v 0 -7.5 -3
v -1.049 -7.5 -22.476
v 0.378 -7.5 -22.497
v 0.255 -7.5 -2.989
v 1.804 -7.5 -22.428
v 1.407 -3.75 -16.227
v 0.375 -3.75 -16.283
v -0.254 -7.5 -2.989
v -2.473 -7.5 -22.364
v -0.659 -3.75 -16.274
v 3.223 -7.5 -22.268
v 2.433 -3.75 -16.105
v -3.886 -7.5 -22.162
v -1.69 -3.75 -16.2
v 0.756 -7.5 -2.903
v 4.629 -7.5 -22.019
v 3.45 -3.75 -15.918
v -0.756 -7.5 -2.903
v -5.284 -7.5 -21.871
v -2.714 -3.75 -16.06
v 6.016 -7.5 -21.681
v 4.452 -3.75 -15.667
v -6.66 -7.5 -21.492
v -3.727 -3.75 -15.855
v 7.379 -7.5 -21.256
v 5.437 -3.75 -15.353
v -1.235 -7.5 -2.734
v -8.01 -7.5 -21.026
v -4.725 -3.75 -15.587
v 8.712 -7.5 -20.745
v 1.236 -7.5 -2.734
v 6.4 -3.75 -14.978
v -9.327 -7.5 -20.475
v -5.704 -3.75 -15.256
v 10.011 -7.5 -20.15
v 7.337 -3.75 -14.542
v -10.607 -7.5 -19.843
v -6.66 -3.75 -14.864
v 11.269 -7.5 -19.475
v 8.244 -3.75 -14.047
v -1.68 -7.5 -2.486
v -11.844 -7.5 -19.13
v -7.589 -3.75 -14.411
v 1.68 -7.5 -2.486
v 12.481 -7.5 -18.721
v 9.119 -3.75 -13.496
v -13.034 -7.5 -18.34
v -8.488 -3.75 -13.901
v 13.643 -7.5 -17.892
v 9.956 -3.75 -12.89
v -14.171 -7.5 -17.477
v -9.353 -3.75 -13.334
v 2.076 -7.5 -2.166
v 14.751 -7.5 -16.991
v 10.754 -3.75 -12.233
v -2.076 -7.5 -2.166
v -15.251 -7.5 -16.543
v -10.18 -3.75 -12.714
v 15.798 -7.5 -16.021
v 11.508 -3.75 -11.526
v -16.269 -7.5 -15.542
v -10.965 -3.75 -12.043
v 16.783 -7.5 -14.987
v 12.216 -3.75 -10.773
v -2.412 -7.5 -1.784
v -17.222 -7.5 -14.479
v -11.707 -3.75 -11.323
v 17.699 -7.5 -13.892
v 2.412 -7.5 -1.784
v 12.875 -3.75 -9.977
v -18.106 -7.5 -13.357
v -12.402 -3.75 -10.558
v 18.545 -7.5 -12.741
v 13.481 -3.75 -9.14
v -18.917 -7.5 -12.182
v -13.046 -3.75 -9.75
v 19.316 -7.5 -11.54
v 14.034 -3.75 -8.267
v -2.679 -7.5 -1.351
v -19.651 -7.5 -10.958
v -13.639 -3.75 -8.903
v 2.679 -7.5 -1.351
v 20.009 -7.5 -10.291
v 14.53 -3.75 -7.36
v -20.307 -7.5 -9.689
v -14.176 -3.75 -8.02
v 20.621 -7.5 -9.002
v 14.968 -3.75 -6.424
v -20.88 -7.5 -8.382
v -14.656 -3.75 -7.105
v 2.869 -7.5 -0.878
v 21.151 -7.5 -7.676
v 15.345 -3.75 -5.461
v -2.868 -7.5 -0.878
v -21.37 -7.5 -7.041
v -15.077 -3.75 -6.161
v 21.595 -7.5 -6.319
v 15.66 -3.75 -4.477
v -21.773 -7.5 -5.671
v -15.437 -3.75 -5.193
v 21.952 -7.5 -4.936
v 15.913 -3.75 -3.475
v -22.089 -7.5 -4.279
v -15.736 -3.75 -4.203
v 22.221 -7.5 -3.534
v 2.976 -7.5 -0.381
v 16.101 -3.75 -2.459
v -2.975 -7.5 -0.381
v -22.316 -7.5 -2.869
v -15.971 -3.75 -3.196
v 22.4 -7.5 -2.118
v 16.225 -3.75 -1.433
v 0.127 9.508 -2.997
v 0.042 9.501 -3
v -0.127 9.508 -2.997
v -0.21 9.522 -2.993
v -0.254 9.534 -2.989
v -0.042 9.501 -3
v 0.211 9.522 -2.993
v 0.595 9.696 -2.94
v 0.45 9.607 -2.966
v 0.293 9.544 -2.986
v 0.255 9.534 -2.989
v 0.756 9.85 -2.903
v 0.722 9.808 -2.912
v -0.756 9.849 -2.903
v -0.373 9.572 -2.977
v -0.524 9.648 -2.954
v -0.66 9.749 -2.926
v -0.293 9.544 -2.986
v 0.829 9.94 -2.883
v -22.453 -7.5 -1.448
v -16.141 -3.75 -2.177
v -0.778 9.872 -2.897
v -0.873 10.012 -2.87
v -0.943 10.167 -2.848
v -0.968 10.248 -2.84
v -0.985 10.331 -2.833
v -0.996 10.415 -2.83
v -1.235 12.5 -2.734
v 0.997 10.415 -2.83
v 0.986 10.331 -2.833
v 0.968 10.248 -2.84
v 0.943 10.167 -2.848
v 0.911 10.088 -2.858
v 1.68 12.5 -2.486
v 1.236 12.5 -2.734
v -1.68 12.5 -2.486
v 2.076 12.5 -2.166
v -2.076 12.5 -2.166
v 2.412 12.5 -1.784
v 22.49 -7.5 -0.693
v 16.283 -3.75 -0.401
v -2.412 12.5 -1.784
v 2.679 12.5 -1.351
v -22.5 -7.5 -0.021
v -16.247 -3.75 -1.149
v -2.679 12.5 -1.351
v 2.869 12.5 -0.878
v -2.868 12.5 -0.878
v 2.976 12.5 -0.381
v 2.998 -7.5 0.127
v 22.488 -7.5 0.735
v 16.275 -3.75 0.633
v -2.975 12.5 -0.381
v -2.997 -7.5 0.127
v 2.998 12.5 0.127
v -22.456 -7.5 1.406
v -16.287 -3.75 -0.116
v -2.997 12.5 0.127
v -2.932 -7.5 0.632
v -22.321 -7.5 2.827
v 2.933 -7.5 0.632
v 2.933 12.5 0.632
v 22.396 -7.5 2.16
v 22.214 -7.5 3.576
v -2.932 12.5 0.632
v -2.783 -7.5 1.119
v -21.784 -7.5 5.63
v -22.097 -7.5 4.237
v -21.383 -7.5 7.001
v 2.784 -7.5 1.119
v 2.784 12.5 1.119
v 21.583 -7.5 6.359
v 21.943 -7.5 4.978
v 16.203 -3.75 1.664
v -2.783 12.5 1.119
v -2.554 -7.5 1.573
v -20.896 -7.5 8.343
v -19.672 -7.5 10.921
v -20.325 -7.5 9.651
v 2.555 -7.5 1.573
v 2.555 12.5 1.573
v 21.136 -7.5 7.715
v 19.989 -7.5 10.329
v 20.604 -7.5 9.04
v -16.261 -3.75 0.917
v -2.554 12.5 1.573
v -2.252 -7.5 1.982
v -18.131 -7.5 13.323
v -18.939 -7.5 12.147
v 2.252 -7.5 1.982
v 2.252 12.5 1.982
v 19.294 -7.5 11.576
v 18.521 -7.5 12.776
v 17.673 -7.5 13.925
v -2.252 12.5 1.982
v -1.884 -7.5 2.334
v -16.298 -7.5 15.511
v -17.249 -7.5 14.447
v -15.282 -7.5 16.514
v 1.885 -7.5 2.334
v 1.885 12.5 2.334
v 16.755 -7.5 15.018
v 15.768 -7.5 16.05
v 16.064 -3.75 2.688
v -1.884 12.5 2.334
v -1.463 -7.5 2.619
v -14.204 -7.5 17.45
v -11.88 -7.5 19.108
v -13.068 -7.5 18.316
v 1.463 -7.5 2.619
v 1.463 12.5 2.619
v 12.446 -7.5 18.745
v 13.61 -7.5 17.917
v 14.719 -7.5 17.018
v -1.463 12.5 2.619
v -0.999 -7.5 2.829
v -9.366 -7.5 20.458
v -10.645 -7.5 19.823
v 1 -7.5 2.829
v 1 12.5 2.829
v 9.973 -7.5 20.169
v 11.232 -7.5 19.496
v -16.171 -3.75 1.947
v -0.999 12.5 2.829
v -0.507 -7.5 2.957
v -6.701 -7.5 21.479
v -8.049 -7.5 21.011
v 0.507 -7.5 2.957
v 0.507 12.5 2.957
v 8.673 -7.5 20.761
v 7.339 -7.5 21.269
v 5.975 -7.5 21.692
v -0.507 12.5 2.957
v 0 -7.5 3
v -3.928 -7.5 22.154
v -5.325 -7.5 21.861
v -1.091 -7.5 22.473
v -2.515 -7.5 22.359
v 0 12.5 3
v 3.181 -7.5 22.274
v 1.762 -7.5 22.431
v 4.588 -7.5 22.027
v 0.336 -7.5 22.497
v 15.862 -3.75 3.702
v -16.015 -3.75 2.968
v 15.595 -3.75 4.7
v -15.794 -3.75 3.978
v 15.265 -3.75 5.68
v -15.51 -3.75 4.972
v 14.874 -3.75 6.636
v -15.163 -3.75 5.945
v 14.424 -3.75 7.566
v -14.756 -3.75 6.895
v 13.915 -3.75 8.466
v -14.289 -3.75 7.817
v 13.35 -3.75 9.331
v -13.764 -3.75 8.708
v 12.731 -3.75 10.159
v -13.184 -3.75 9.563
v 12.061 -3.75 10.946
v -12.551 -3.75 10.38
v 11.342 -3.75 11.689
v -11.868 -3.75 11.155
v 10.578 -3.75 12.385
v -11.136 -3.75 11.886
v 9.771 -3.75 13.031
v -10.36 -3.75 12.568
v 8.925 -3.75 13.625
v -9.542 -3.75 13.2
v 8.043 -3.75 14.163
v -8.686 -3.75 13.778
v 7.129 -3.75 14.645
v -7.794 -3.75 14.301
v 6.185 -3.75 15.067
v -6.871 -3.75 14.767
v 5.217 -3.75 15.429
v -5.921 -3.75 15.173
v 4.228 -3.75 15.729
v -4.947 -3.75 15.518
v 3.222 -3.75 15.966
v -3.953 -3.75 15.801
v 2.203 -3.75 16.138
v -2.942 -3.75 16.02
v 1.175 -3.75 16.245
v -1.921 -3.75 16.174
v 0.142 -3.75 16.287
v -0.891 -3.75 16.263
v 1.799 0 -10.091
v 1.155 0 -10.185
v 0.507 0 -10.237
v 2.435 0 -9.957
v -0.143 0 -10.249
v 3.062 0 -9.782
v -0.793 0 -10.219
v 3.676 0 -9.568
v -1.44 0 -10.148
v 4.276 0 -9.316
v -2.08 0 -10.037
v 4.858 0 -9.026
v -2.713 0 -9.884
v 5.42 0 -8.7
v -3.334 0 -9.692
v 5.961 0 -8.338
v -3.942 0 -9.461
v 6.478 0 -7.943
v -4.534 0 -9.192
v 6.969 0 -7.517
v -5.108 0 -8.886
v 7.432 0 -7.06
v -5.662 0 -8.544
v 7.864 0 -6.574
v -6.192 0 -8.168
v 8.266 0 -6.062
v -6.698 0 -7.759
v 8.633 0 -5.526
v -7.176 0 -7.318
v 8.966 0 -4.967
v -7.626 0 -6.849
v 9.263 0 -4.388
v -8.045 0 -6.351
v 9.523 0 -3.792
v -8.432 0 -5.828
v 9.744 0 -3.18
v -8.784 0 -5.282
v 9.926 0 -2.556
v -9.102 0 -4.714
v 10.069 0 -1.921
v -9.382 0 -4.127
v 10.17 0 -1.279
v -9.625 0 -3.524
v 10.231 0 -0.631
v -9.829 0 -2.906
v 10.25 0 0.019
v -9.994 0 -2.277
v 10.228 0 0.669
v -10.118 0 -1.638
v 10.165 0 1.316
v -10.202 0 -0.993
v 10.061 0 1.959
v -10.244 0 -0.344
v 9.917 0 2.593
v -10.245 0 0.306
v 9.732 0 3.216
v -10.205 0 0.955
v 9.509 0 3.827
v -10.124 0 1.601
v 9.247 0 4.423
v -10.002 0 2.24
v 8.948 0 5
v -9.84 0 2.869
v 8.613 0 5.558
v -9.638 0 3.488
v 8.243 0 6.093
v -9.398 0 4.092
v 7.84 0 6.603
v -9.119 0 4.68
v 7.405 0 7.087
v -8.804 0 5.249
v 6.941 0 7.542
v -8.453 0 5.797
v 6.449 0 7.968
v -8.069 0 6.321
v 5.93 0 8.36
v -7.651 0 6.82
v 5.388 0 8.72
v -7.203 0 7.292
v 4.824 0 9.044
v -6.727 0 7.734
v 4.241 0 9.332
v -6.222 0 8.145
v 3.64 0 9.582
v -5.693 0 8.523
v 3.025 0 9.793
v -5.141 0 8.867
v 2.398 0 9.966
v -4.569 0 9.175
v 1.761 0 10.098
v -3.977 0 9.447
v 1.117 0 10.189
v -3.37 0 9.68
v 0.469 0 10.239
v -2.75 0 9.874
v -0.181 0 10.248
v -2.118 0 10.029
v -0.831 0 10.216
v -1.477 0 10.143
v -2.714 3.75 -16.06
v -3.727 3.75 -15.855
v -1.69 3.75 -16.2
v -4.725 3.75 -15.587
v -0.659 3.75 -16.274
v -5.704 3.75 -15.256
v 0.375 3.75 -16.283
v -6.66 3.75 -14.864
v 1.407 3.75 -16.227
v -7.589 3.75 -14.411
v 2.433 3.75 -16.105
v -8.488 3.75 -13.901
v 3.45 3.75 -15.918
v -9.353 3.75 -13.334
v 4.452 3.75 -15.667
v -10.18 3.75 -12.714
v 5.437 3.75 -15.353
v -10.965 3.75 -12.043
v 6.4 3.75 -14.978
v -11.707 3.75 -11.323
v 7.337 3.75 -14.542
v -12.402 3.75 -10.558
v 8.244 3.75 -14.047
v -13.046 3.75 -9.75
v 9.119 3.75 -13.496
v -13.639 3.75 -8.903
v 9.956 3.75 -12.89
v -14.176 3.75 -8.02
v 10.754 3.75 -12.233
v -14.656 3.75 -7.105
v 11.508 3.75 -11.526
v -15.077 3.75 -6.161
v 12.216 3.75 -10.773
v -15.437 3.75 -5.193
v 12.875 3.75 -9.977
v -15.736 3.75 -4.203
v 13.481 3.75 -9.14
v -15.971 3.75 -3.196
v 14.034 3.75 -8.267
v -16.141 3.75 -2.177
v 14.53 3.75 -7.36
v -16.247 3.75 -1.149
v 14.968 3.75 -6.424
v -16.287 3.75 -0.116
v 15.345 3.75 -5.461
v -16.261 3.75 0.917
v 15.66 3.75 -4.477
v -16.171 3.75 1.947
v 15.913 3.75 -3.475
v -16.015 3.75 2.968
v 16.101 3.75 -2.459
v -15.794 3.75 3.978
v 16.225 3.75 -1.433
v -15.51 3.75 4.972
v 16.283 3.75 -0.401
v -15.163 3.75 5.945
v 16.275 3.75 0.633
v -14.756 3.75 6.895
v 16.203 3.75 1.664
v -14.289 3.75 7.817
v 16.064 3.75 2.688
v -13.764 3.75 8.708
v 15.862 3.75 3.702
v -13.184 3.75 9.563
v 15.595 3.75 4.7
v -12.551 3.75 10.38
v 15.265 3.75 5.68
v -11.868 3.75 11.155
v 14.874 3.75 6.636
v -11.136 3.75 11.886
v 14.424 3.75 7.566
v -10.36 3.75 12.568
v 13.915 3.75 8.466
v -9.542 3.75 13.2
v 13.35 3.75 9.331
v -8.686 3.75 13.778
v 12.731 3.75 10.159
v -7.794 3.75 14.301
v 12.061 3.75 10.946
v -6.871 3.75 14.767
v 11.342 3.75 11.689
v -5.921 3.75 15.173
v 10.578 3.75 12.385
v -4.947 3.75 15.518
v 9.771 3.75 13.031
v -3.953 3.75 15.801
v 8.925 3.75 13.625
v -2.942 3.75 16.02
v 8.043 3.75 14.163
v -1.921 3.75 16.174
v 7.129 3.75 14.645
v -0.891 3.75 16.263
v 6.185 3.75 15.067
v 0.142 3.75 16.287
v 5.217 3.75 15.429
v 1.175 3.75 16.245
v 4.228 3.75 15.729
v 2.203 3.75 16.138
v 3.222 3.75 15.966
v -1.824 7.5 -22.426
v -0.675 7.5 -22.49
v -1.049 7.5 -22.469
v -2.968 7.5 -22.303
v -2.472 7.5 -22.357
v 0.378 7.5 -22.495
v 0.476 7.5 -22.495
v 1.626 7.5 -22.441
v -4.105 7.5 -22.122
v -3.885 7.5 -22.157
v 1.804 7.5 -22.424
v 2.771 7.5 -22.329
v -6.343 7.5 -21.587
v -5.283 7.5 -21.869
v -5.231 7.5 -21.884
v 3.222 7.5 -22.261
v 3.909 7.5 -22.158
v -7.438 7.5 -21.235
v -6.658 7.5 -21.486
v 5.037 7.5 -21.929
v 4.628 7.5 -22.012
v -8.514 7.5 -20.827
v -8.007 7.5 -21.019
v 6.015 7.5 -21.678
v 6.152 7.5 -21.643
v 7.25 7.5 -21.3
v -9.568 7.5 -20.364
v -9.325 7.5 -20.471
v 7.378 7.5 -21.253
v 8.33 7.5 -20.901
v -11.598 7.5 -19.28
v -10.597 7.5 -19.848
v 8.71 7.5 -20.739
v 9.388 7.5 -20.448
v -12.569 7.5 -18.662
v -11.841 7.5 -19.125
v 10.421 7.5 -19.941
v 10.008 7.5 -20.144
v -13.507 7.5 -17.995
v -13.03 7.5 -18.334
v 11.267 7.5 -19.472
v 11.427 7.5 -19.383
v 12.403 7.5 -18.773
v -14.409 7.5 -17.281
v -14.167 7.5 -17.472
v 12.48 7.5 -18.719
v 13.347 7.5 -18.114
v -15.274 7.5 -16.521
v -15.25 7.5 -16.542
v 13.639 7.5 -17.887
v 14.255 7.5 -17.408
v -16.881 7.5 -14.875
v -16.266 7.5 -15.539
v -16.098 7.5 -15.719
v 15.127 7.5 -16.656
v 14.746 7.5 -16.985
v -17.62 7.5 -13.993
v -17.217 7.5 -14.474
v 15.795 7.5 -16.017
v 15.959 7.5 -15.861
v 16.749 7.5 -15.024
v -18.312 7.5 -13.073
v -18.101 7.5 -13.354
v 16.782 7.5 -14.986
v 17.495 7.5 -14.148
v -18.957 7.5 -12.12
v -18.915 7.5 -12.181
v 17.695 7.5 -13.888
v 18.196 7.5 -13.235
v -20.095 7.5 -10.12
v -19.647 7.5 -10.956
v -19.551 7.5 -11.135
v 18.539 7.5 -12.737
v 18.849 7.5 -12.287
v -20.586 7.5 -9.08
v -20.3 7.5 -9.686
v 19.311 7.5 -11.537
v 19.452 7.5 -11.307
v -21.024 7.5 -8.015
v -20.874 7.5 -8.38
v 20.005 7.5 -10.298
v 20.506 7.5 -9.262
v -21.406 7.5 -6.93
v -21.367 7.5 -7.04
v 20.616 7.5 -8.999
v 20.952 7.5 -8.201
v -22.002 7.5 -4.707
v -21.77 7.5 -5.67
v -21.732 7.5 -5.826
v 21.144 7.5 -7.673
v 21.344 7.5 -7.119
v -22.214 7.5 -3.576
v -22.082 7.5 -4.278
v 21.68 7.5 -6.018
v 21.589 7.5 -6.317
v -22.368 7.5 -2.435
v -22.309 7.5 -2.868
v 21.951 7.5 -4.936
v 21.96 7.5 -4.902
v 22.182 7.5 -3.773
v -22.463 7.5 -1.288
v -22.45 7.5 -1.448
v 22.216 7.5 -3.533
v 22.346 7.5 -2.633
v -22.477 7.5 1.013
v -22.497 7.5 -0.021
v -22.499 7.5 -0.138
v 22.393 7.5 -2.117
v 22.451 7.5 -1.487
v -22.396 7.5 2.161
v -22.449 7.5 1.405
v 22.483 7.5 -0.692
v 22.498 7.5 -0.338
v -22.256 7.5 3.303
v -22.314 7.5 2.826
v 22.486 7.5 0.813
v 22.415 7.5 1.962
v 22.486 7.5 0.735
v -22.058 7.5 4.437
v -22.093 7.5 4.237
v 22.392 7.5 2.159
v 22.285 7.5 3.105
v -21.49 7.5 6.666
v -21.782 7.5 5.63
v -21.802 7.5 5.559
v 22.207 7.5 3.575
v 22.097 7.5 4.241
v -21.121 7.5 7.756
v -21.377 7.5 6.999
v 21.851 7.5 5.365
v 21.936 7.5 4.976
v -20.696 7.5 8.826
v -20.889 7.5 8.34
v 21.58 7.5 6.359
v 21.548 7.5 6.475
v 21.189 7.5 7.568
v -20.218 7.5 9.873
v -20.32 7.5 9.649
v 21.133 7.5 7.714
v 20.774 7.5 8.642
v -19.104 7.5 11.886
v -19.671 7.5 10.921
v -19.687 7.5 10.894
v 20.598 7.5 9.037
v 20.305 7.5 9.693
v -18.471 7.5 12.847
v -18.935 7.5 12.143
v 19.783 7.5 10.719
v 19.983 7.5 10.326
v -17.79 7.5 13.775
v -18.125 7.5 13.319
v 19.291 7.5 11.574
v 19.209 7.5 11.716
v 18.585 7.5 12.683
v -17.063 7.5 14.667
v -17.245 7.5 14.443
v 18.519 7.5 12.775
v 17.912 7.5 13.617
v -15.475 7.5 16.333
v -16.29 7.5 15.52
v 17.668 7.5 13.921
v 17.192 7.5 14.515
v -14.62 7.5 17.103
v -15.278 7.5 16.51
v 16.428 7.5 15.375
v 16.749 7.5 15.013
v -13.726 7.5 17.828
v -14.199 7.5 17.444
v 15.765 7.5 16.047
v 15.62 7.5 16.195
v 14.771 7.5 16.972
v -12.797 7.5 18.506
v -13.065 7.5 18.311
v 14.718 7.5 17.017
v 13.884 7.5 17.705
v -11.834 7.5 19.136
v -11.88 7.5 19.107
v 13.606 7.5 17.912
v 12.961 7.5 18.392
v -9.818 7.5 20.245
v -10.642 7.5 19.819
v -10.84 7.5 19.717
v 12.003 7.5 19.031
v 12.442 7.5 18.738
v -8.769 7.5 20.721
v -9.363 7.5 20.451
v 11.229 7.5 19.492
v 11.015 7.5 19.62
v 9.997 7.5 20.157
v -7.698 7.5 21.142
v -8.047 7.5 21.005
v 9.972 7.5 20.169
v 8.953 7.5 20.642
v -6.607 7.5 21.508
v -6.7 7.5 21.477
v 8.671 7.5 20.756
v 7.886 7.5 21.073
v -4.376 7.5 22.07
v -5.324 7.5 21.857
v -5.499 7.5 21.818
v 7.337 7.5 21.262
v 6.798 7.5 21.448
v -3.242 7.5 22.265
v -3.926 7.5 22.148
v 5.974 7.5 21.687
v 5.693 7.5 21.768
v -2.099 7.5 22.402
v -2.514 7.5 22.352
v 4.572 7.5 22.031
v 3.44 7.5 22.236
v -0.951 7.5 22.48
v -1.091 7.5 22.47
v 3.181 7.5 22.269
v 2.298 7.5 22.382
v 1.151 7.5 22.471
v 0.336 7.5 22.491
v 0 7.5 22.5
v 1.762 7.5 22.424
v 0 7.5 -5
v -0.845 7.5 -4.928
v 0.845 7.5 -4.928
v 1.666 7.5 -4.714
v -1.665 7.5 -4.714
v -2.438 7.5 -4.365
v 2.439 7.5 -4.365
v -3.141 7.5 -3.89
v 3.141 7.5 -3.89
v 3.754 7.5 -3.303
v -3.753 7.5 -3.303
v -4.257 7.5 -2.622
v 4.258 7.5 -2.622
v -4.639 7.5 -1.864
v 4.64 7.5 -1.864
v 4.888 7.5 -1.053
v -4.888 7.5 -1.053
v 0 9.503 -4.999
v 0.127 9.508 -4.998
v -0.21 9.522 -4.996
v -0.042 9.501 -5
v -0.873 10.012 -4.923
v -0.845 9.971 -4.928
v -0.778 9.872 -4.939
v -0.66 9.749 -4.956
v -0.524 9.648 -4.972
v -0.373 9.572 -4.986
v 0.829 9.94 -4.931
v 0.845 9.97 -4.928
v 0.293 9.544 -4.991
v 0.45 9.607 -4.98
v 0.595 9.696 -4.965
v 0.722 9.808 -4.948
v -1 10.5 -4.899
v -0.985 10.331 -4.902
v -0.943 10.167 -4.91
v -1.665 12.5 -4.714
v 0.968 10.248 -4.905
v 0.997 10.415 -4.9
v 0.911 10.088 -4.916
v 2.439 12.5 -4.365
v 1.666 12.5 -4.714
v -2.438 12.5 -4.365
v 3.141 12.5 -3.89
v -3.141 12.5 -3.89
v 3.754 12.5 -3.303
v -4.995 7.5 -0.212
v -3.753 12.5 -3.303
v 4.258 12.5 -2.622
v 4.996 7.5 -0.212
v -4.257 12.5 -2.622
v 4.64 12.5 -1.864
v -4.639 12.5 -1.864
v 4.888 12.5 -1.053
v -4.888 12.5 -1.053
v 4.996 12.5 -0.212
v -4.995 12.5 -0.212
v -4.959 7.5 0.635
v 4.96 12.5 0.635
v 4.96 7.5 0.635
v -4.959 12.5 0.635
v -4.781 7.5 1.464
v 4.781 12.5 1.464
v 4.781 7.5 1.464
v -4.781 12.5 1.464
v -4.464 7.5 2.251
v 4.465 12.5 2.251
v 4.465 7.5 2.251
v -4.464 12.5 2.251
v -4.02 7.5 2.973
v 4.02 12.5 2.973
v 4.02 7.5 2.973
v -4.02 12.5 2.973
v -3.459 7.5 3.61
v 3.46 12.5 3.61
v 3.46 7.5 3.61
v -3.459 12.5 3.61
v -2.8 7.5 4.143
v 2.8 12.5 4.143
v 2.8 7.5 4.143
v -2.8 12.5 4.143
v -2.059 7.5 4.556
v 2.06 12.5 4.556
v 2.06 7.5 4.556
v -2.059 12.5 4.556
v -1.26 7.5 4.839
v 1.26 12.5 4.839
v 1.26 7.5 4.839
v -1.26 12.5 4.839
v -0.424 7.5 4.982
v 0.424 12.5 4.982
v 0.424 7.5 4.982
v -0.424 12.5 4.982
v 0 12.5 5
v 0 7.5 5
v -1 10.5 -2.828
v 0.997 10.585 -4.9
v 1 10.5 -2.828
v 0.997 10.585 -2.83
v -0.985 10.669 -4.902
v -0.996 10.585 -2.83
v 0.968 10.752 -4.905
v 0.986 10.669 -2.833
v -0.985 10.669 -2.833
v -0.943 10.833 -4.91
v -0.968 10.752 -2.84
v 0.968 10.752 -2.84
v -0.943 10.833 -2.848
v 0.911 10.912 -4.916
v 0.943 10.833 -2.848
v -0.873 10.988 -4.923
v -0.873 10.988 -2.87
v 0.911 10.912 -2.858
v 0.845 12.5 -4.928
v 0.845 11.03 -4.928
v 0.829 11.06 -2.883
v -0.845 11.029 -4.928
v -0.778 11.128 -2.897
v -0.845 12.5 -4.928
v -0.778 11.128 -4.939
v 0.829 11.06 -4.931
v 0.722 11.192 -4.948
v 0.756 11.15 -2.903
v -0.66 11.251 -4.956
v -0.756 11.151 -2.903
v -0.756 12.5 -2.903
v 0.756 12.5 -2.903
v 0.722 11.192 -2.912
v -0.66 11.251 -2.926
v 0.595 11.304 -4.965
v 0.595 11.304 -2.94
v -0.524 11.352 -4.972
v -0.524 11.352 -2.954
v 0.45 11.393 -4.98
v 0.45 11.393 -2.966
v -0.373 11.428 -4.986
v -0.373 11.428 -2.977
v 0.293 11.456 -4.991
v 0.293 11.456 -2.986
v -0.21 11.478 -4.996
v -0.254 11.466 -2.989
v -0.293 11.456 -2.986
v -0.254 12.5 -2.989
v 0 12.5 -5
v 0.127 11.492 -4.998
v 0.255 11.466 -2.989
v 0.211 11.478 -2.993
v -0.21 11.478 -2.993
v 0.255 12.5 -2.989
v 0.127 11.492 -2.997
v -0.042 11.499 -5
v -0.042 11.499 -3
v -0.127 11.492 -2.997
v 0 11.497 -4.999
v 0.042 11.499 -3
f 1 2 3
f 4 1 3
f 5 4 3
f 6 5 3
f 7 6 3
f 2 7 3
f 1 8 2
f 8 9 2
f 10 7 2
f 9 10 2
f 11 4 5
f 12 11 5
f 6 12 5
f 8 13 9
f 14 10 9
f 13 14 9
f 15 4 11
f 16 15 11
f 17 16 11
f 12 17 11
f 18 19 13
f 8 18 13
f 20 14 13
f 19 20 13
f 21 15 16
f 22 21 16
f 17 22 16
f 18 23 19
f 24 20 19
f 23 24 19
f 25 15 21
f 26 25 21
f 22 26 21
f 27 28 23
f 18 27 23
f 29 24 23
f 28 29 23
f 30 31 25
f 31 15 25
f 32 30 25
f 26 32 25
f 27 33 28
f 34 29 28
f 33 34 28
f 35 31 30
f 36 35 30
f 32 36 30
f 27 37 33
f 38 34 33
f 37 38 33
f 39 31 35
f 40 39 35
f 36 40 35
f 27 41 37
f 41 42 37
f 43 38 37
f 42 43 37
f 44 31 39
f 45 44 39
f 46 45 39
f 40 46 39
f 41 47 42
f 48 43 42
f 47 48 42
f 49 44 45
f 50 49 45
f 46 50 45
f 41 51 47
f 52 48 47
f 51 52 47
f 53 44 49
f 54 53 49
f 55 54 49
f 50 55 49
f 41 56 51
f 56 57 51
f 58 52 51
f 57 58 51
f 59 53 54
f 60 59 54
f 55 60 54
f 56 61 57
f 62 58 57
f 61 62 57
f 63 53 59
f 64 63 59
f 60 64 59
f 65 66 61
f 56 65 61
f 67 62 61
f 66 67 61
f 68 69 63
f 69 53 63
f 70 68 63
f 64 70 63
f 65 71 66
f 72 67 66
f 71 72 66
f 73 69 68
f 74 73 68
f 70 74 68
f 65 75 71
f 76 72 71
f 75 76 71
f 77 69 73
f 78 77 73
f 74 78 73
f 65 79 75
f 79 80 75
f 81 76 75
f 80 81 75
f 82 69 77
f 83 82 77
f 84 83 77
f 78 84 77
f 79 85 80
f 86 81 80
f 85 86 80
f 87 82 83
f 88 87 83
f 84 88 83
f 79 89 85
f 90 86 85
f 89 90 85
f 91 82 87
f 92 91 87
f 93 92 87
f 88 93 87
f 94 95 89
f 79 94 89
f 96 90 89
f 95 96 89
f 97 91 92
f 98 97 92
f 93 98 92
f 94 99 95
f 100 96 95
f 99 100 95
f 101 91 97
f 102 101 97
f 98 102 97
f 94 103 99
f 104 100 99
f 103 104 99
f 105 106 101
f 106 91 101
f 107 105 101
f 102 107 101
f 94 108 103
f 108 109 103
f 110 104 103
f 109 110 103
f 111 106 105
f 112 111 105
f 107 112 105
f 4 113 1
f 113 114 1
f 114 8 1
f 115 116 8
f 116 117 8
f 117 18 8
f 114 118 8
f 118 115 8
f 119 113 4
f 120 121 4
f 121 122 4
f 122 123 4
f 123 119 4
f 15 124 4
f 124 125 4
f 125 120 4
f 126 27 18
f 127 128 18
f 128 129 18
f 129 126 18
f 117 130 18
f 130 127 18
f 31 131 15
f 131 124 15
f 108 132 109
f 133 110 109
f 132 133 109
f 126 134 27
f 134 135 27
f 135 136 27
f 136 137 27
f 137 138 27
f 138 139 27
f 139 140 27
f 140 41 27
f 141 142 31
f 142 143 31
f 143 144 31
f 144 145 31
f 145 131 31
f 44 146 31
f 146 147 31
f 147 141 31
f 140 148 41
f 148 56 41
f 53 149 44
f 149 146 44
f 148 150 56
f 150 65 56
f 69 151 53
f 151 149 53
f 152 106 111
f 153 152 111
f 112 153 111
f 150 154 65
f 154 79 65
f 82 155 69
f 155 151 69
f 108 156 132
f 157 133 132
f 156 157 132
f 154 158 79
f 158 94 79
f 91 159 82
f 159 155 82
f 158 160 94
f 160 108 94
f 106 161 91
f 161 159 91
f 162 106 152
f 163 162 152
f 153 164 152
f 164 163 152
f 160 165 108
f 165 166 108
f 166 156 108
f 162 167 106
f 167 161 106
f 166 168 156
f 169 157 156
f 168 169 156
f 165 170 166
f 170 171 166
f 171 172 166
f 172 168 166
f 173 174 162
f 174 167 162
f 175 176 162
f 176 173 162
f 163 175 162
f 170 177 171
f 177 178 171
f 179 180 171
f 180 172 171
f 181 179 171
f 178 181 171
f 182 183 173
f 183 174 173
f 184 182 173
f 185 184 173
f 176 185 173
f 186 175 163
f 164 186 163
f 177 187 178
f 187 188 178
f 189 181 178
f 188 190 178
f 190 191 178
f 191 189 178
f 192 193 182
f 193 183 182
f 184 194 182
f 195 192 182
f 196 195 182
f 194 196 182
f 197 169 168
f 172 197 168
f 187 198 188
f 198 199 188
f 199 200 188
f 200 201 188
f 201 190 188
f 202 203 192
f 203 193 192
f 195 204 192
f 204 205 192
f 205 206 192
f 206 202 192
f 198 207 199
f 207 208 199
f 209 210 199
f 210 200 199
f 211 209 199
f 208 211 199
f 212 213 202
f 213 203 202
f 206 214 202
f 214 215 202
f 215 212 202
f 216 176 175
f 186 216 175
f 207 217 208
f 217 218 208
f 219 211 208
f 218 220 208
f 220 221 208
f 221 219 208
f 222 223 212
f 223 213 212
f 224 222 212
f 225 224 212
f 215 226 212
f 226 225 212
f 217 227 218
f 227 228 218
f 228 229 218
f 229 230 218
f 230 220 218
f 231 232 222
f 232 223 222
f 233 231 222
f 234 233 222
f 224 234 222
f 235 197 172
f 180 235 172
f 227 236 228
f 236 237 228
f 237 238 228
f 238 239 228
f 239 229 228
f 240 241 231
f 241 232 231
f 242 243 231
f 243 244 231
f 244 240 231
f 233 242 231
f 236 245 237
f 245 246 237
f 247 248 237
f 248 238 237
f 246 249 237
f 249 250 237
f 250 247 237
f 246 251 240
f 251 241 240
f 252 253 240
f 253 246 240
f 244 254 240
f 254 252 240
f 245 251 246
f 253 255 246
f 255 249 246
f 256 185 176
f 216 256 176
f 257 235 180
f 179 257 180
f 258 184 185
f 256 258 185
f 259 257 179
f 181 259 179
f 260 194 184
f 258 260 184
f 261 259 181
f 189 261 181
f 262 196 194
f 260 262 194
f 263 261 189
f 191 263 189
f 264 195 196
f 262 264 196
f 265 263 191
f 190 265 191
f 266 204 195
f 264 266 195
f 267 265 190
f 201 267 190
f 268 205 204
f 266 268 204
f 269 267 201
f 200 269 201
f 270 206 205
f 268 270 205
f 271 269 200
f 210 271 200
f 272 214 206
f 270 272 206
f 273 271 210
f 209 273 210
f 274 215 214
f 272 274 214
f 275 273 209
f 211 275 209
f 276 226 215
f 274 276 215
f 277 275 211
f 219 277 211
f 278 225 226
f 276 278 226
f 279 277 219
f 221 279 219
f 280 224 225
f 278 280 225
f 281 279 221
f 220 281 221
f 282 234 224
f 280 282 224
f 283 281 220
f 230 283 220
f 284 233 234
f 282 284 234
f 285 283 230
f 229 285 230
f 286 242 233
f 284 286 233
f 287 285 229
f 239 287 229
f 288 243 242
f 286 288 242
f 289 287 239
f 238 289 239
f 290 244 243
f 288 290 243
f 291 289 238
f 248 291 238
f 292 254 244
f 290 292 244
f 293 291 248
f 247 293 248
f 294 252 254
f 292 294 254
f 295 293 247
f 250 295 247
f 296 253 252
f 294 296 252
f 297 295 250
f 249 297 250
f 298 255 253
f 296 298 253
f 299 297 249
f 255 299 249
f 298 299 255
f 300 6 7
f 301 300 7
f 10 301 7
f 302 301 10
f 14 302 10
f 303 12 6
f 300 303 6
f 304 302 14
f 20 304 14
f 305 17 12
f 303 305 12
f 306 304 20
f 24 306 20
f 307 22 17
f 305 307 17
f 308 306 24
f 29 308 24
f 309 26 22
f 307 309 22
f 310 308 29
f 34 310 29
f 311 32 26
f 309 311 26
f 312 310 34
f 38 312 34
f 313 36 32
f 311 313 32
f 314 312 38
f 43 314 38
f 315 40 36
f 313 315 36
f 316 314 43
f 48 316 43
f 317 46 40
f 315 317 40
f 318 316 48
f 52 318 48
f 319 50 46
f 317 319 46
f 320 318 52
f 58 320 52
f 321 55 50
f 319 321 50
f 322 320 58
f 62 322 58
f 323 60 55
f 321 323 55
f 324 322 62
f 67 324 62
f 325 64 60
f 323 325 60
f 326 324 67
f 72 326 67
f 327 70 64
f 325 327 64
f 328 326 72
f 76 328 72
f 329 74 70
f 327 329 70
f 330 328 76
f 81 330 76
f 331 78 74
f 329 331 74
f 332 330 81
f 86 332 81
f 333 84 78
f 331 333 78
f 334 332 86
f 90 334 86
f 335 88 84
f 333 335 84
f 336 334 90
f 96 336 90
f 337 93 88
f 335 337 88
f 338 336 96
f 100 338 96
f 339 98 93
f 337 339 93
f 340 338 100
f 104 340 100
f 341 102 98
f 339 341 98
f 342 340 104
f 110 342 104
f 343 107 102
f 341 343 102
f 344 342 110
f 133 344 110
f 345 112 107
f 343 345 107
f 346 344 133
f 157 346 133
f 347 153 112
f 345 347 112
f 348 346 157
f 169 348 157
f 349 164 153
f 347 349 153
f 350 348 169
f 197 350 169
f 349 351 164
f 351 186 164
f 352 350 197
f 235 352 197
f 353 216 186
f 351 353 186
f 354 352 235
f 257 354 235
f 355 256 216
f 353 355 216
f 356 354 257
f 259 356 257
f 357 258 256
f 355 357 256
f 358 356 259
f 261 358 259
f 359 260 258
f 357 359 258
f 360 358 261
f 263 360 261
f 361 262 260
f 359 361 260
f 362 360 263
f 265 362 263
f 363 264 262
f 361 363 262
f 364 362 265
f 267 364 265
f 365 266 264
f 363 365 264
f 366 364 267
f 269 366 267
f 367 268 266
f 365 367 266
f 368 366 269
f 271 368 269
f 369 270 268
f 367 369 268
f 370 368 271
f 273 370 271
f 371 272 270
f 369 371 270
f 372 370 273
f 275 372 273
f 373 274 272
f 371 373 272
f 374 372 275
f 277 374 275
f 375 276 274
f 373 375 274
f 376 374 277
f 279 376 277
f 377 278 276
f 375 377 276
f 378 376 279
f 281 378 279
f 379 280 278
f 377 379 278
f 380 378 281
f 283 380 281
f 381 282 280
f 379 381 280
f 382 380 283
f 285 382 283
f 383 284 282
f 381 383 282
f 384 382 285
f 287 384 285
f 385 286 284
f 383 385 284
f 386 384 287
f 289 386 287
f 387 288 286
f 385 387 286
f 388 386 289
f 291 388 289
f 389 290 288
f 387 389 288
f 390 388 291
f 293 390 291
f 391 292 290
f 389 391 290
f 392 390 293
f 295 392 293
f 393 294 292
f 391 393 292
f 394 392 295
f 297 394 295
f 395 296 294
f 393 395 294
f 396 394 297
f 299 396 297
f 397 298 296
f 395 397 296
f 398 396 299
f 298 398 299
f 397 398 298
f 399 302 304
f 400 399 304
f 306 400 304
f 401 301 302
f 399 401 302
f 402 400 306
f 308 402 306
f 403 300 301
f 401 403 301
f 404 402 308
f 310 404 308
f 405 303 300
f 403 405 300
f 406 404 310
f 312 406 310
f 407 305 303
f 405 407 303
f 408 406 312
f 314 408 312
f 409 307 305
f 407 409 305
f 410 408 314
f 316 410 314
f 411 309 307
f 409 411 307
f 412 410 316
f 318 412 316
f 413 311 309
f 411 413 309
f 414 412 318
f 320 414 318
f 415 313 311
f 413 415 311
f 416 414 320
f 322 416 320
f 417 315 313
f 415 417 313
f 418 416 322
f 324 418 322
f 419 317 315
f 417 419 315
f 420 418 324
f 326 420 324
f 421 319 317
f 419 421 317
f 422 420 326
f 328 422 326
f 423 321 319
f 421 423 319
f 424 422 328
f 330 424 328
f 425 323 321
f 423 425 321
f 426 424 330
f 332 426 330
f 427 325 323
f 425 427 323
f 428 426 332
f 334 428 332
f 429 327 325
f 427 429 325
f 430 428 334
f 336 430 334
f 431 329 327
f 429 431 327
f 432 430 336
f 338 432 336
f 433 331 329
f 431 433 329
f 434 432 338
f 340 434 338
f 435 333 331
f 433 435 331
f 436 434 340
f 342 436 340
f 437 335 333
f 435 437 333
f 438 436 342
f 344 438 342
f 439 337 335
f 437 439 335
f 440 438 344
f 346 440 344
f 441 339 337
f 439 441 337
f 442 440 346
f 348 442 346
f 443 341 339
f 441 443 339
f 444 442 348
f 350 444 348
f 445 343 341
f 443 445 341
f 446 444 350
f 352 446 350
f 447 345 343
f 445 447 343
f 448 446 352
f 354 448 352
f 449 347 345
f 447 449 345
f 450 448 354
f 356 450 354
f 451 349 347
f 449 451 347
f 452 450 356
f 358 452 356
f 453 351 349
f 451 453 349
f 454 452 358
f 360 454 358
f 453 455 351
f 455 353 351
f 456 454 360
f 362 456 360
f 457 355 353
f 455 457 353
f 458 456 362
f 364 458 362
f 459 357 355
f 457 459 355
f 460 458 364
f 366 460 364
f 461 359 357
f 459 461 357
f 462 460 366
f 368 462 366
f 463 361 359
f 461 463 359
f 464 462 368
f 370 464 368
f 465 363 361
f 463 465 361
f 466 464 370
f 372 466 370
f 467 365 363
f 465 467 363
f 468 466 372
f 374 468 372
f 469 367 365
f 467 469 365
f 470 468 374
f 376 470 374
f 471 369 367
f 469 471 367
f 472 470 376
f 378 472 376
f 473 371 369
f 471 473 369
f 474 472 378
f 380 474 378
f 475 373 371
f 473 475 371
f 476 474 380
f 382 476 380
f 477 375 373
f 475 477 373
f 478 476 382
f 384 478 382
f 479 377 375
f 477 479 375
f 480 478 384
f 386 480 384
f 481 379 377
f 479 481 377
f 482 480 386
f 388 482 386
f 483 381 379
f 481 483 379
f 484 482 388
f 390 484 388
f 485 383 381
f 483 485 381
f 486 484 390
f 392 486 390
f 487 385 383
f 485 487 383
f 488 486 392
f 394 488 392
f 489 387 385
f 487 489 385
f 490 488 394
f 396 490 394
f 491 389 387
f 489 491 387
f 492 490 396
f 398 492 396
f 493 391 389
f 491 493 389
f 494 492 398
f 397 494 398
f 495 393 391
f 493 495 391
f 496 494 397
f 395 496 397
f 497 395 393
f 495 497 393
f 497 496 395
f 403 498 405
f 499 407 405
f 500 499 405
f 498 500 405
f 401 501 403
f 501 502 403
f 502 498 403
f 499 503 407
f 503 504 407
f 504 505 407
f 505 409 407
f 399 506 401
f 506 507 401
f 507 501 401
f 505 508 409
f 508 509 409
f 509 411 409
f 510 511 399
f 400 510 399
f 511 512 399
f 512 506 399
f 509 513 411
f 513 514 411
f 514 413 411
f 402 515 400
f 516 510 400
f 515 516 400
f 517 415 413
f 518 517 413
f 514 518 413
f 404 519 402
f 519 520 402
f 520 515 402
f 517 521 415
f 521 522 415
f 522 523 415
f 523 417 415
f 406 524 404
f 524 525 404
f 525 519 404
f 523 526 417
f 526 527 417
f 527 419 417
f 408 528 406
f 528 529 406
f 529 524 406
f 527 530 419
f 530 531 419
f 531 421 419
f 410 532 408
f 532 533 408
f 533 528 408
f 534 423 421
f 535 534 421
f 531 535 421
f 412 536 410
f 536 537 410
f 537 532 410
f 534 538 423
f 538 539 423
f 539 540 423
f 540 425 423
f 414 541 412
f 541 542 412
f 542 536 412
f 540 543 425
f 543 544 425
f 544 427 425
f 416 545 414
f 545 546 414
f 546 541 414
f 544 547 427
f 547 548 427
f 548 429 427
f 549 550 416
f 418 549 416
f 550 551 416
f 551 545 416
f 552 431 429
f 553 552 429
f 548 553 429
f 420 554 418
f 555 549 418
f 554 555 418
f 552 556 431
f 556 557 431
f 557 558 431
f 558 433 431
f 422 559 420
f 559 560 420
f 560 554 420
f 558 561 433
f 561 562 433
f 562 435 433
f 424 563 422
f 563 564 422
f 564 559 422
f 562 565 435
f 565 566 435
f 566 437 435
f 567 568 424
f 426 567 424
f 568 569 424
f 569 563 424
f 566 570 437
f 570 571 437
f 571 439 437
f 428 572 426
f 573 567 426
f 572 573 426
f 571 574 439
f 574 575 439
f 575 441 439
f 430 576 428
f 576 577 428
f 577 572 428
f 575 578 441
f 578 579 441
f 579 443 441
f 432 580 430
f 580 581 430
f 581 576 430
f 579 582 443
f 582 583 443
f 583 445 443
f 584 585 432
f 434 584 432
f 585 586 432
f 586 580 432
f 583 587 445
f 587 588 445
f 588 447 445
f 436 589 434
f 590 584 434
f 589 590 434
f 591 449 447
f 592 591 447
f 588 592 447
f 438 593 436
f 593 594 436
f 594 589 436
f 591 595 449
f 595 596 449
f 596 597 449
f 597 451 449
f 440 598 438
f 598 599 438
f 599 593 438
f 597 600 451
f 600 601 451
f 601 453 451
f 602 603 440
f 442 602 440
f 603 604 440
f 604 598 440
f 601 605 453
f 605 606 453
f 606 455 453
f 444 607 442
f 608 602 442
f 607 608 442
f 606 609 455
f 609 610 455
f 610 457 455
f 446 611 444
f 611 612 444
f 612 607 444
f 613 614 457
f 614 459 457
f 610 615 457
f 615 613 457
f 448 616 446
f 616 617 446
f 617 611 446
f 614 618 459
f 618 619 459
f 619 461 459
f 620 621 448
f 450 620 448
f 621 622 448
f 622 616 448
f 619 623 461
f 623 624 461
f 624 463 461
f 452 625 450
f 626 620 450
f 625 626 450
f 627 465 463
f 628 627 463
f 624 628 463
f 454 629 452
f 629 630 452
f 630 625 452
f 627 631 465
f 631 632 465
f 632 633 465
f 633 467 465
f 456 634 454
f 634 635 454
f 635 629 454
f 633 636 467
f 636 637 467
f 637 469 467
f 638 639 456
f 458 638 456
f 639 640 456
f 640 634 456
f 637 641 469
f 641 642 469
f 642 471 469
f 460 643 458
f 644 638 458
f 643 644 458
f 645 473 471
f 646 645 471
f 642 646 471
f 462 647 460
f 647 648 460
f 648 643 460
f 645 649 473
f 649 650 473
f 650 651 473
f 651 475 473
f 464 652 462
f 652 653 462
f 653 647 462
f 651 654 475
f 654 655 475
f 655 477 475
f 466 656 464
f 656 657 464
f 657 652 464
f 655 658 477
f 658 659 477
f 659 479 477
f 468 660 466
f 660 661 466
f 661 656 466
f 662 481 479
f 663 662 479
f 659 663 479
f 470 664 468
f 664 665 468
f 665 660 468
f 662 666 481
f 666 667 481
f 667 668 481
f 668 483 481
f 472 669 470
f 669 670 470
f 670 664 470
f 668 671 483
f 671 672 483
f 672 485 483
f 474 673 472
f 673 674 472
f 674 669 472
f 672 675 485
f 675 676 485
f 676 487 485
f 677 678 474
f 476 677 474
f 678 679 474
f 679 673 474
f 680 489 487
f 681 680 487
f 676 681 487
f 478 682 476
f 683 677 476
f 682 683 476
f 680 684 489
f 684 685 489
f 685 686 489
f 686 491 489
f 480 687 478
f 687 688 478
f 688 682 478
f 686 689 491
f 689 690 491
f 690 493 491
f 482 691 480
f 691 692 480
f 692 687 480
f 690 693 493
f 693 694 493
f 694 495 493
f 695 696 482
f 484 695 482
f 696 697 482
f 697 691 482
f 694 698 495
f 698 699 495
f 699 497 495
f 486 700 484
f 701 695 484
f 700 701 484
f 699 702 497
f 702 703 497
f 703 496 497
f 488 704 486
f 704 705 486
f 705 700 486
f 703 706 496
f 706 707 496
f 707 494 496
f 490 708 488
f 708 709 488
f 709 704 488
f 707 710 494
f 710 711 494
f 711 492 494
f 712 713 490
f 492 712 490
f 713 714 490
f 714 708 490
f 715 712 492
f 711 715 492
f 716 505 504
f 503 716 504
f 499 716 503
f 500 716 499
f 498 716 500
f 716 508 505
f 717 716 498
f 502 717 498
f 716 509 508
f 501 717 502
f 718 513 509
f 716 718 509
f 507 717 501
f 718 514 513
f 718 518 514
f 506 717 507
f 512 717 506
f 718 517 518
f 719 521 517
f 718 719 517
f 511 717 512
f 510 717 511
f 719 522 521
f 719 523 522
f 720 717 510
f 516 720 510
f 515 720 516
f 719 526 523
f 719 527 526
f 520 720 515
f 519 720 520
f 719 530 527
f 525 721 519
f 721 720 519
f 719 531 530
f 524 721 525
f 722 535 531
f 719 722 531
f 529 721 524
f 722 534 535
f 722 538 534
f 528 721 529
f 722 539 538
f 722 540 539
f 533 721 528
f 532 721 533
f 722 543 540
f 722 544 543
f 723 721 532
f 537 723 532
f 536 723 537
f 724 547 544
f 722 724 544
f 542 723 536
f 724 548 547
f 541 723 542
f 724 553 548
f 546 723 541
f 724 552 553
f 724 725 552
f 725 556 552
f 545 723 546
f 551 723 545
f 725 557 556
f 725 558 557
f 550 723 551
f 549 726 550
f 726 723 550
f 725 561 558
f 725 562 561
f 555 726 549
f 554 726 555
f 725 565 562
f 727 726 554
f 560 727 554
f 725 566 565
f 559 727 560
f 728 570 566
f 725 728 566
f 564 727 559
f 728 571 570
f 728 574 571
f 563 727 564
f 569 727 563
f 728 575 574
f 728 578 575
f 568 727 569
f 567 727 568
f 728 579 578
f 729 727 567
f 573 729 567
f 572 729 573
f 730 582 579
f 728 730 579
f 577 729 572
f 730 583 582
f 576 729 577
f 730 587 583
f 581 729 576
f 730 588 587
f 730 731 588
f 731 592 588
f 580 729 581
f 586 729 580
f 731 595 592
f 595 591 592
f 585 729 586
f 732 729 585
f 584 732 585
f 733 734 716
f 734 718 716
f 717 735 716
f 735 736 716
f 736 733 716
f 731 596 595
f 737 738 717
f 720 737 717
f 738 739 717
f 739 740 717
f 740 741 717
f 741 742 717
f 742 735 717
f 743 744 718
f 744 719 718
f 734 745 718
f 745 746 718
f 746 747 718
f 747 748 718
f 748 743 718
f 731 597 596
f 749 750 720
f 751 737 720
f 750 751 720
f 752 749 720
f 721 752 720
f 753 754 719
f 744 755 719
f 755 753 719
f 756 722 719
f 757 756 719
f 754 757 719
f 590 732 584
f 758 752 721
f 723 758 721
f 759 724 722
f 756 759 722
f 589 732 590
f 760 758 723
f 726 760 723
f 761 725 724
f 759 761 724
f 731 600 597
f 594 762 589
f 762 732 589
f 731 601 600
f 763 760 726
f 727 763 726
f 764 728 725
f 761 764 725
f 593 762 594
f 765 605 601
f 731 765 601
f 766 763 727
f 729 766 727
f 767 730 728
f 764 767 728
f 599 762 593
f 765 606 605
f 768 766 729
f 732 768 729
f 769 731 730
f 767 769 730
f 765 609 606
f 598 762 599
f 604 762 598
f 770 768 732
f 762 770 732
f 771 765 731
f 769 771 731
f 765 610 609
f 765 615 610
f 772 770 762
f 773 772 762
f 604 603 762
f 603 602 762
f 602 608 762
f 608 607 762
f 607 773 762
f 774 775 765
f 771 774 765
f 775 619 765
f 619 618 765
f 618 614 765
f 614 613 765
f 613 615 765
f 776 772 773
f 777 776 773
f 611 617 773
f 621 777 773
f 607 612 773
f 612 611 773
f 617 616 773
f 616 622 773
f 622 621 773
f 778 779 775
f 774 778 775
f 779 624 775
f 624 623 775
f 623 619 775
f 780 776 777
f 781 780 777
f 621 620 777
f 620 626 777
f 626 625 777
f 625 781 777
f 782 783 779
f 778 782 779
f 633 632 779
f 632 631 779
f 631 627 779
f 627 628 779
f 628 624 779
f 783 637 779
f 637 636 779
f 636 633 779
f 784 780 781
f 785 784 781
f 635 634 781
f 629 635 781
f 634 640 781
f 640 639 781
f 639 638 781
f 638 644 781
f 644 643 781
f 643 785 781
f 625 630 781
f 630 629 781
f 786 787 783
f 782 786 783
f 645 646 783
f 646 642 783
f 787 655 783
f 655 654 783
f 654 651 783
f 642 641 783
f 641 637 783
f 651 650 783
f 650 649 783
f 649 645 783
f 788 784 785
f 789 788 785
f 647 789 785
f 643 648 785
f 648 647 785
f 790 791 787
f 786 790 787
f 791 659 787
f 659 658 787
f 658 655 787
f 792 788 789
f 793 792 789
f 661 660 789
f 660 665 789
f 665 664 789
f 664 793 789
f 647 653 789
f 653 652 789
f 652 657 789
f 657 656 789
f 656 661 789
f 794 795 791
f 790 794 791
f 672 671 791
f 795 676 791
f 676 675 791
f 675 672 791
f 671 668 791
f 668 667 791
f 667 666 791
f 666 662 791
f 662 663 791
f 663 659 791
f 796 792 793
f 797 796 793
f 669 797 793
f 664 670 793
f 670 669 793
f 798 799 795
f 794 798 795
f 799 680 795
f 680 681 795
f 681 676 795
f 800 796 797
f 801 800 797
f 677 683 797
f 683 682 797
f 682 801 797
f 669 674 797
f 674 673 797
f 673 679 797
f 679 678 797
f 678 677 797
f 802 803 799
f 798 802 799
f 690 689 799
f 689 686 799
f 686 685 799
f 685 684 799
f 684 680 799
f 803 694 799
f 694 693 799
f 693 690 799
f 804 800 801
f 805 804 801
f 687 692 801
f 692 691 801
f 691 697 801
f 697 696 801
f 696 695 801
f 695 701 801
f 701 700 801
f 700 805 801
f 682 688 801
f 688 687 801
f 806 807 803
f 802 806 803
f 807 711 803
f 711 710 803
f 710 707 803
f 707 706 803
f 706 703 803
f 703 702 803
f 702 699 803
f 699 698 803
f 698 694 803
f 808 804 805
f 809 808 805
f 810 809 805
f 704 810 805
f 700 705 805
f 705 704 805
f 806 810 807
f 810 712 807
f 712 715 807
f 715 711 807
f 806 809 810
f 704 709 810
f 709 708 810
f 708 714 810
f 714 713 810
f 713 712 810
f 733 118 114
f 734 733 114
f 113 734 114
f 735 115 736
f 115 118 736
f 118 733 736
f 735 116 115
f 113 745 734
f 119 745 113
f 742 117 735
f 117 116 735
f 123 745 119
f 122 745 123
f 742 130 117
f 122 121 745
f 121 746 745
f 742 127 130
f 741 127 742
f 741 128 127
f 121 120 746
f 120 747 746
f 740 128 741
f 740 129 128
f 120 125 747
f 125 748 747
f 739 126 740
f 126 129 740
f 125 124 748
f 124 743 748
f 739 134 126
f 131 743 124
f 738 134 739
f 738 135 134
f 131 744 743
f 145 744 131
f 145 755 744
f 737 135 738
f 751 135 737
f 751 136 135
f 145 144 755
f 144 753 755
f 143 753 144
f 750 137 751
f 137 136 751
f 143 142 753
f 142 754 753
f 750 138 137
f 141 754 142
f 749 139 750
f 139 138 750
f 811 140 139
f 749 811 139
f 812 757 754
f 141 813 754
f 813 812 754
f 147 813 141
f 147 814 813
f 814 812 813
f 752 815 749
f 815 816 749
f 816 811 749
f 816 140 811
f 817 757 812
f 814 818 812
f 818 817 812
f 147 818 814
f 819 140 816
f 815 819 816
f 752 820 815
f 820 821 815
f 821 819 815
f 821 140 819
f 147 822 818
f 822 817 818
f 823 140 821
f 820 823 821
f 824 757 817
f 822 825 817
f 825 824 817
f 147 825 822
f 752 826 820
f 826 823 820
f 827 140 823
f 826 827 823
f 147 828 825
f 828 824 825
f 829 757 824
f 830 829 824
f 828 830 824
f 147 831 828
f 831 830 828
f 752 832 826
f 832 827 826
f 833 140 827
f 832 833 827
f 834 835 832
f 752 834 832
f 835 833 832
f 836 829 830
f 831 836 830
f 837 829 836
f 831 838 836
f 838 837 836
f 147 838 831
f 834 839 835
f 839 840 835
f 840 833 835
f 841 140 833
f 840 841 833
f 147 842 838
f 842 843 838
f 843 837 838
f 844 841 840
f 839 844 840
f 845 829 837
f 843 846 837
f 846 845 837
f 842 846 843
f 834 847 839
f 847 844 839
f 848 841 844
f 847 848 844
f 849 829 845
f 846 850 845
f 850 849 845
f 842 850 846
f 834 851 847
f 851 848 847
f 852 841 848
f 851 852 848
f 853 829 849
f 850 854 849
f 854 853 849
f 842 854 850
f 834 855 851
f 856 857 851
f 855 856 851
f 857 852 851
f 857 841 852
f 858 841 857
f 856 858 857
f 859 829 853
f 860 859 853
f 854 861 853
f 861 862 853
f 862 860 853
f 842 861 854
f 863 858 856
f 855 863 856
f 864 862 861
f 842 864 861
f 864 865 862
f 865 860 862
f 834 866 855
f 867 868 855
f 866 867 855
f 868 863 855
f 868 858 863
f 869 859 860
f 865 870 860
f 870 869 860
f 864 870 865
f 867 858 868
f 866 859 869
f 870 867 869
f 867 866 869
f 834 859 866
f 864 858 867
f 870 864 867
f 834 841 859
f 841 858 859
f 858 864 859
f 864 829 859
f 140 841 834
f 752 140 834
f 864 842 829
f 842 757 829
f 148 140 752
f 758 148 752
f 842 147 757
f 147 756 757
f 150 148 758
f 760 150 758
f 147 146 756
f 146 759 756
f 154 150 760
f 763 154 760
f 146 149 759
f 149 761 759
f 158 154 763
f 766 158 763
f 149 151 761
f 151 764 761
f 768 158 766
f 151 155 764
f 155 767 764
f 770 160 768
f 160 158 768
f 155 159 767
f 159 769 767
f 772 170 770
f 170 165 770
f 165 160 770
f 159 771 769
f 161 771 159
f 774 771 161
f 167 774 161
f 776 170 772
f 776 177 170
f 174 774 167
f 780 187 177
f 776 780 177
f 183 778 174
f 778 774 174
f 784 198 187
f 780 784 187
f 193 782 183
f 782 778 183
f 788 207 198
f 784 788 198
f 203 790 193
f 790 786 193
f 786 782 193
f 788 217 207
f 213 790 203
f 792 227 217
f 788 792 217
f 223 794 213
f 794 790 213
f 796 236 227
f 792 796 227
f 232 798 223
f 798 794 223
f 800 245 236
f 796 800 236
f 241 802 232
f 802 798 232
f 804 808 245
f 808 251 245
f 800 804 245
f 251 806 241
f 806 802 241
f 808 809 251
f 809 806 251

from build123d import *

# Parameters (mm, degrees)
SKETCH3_R               = 5
BOSS_EXTRUDE1_DEPTH     = 5
SKETCH4_R               = 3
CUT_EXTRUDE3_DEPTH      = 20
CUT_EXTRUDE2_REACH      = 39.666
CUT_EXTRUDE2_END_RADIUS = 3
SKETCH6_R               = 1


with BuildPart() as part:
    # Loft1: read off the stored shape, not the designer's step
    # Loft1: loft between two sections, ruled curve by curve
    loft1_from = [
        Edge.make_bspline([(9.916670011, 0, 2.592712073), (15.102094157, 0, -17.240627949), (-4.731245866, 0, -22.426052095), (-9.916670011, 0, -2.592712073), (-15.102094157, 0, 17.240627949), (4.731245866, 0, 22.426052095), (9.916670011, 0, 2.592712073)], [0, 0, 0, 0, 0.5, 0.5, 0.5, 1, 1, 1, 1], 3, [1, 0.333333333, 0.333333333, 1, 0.333333333, 0.333333333, 1]),
    ]
    loft1_to = [
        Edge.make_bspline([(22.487991734, 7.5, 0.735001896), (23.957995526, 7.5, -44.240981571), (-21.017987942, 7.5, -45.710985363), (-22.487991734, 7.5, -0.735001896), (-23.957995526, 7.5, 44.240981571), (21.017987942, 7.5, 45.710985363), (22.487991734, 7.5, 0.735001896)], [0, 0, 0, 0, 0.5, 0.5, 0.5, 1, 1, 1, 1], 3, [1, 0.333333333, 0.333333333, 1, 0.333333333, 0.333333333, 1]),
    ]
    loft1 = Solid(Shell([*[Face.make_surface_from_curves(loft1_from[k], loft1_to[k]) for k in range(1)], Face(Wire(loft1_from)), Face(Wire(loft1_to))]))
    add(loft1)

    # Mirror1: Loft1 across plane
    add(loft1.mirror(Plane.ZX))

    # Sketch3 → Boss-Extrude1 (add)
    with BuildSketch(Plane(origin=(0, 7.5, 0), x_dir=(1, 0, 0), z_dir=(0, 1, 0))):
        with Locations(Location((0, 0, 0), (0, 0, 270))):
            Circle(SKETCH3_R)
    extrude(amount=BOSS_EXTRUDE1_DEPTH)

    # Sketch4 → Cut-Extrude3 (cut)
    with BuildSketch(Plane(origin=(0, 12.5, 0), x_dir=(1, 0, 0), z_dir=(0, 1, 0))):
        with Locations(Location((0, 0, 0), (0, 0, 270))):
            Circle(SKETCH4_R)
    extrude(amount=-CUT_EXTRUDE3_DEPTH, mode=Mode.SUBTRACT)

    # Cut-Extrude2: up to this cylinder (the profile starts outside it)
    cut_extrude2_end = Plane(origin=(0, 10.5, 0), z_dir=(0, 1, 0)) * Cylinder(CUT_EXTRUDE2_END_RADIUS, 86.332, mode=Mode.PRIVATE)
    # Sketch6 → Cut-Extrude2 (cut, up to the surface)
    with BuildSketch(Plane.XY.offset(-5), mode=Mode.PRIVATE) as cut_extrude2_sk1:
        with Locations(Location((0, 10.5, 0), (0, 0, 180))):
            Circle(SKETCH6_R)
    cut_extrude2_tool1 = extrude(cut_extrude2_sk1.sketch, amount=CUT_EXTRUDE2_REACH, mode=Mode.PRIVATE) - cut_extrude2_end
    add(cut_extrude2_tool1.solids().sort_by_distance((0, 10.5, -5))[0], mode=Mode.SUBTRACT)


solid = part.part
